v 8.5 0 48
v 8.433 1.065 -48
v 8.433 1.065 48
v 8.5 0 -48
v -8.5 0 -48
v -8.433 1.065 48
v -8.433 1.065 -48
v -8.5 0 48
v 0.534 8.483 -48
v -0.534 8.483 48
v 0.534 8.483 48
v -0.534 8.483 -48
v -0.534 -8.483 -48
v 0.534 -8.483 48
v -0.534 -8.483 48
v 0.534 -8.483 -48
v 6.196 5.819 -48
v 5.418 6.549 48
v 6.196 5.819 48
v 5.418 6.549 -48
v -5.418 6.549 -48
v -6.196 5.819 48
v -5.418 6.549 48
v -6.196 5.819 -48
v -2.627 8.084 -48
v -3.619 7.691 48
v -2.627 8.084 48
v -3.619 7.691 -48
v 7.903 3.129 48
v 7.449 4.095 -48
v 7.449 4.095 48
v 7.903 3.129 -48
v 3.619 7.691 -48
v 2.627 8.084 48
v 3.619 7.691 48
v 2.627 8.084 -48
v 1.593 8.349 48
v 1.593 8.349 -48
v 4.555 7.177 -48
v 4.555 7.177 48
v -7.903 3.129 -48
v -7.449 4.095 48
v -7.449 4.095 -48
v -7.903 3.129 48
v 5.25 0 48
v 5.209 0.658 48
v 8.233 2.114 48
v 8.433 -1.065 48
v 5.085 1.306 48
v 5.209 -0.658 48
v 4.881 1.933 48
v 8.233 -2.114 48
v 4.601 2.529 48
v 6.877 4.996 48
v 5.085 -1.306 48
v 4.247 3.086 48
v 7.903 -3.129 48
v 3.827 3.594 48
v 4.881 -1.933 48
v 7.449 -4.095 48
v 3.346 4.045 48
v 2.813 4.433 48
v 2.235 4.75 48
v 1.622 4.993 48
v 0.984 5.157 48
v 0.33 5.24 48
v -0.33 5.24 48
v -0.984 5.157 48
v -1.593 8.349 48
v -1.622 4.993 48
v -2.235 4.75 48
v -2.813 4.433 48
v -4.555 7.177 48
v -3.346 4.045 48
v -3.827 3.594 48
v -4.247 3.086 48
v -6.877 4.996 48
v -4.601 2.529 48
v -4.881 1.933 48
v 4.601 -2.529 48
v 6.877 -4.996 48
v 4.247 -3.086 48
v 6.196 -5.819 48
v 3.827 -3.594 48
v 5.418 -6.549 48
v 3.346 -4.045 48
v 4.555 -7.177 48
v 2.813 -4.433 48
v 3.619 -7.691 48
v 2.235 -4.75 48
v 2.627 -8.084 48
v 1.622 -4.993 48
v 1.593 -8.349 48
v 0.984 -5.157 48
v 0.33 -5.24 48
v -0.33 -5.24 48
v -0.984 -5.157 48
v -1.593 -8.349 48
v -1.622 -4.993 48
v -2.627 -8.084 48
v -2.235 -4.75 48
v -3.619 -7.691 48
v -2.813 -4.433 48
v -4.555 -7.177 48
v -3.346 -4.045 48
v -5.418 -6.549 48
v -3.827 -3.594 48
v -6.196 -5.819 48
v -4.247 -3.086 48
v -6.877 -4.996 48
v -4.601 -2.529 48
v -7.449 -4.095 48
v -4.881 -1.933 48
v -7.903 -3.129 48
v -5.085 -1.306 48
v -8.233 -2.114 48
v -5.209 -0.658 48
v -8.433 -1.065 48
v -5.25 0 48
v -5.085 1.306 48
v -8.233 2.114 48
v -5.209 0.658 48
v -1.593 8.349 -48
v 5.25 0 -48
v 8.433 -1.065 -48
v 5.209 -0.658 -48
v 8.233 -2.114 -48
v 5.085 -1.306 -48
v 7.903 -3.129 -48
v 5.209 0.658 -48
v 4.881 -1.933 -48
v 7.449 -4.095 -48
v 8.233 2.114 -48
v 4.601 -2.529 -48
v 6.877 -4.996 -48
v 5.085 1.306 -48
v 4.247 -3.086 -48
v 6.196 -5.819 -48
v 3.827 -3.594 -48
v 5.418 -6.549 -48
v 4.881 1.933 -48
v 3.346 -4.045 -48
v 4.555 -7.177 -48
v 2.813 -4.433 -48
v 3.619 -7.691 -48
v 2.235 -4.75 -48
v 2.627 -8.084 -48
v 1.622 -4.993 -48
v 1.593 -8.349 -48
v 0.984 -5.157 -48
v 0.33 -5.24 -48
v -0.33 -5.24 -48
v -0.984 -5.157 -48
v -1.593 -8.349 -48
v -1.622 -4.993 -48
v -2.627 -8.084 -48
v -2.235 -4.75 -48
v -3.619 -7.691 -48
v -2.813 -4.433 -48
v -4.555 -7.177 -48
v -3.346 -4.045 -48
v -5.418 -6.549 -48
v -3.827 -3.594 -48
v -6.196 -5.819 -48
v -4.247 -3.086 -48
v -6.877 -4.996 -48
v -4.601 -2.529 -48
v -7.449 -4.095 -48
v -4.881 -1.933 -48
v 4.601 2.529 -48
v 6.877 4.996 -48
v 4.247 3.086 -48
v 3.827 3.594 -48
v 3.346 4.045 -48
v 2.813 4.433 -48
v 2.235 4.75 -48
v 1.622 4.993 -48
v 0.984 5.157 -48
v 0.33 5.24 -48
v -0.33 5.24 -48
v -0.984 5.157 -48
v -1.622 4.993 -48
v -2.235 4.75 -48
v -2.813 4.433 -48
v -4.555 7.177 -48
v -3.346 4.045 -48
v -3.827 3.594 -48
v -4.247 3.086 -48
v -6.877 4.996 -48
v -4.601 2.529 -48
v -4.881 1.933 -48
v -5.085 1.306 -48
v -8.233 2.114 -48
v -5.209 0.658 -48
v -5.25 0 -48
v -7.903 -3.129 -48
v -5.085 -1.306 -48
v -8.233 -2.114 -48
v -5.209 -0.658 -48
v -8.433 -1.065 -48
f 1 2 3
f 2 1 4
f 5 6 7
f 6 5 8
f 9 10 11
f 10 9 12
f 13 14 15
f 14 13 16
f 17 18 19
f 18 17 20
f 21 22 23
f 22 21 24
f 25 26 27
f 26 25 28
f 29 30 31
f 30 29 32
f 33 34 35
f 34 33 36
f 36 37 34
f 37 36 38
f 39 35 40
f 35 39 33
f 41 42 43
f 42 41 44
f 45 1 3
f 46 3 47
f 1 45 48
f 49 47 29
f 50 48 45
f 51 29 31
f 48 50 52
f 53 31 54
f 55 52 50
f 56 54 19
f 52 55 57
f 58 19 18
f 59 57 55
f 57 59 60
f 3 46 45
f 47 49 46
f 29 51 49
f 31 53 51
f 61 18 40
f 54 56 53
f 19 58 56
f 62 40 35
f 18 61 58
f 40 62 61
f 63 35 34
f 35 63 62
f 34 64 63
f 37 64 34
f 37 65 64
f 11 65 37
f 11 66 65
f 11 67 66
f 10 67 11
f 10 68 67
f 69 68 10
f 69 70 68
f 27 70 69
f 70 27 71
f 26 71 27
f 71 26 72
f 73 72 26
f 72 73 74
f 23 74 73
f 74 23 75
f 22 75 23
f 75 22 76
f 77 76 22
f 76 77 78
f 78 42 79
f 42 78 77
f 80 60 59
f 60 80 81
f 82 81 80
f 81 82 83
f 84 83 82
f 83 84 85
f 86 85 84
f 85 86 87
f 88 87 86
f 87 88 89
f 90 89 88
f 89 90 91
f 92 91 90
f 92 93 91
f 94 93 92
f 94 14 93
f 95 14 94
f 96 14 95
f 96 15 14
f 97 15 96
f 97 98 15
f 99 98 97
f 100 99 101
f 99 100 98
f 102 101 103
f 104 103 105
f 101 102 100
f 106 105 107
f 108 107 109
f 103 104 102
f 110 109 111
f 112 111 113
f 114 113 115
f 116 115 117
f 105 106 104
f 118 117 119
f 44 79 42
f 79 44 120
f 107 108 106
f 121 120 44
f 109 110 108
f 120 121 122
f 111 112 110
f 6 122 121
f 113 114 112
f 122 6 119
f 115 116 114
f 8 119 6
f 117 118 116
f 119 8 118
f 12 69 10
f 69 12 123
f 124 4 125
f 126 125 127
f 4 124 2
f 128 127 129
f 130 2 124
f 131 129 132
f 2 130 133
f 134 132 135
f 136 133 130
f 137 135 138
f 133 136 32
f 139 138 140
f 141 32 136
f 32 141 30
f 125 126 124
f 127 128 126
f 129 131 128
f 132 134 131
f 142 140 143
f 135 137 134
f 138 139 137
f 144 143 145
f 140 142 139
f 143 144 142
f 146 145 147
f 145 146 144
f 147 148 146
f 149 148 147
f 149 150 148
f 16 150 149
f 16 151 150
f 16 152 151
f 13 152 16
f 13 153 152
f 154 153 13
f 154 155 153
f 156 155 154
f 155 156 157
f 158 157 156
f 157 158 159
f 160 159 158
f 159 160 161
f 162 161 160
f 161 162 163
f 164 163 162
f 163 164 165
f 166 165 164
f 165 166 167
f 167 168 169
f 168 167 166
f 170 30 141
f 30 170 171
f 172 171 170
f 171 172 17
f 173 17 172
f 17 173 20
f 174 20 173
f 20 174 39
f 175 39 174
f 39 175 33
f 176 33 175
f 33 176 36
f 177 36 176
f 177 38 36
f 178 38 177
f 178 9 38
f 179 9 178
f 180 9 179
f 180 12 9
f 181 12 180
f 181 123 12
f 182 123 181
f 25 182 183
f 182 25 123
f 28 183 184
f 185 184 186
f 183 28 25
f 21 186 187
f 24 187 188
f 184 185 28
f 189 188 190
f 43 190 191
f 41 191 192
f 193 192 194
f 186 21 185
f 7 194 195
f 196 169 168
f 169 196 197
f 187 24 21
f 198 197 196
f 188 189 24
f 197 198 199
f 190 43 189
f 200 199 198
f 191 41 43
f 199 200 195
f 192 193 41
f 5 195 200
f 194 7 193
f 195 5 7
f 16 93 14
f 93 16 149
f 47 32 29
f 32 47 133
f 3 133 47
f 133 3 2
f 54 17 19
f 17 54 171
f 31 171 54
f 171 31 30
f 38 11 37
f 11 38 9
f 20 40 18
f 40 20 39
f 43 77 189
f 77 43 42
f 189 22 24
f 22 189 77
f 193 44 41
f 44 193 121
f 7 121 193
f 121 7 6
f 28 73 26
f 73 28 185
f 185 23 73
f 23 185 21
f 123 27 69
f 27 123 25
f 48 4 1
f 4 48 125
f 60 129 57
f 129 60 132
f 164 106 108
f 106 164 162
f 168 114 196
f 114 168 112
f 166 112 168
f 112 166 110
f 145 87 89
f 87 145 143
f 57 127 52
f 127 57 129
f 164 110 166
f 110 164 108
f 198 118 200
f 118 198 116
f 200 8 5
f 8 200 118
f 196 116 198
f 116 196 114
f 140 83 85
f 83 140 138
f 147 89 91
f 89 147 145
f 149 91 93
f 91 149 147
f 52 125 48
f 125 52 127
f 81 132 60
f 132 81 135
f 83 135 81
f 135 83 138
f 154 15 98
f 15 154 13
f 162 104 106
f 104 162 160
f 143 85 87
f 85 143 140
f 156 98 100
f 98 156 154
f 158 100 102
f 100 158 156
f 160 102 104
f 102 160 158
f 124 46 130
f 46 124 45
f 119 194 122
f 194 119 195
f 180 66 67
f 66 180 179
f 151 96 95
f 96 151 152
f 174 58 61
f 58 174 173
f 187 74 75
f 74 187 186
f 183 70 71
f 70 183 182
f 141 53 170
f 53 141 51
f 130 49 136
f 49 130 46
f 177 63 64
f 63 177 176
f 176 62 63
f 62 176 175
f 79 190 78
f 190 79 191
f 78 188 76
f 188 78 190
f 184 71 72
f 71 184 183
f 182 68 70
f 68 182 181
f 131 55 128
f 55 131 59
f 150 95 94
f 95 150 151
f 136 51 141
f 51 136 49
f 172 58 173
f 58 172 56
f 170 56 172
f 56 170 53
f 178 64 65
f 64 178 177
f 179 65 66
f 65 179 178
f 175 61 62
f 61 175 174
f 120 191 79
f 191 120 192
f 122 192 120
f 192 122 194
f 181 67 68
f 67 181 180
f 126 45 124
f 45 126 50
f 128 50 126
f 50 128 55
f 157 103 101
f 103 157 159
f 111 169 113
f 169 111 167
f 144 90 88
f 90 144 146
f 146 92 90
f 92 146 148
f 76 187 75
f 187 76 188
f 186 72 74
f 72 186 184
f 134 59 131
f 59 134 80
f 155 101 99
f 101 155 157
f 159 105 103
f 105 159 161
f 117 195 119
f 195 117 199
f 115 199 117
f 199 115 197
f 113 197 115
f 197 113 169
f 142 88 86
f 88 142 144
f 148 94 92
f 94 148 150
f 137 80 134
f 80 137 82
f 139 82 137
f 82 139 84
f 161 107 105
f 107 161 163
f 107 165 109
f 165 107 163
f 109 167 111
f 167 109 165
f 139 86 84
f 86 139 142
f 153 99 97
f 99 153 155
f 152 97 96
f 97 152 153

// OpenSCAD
$fn = 50;


difference() {
	union() {
		translate(v = [0, 0, -48.0000000000]) {
			cylinder(h = 96, r = 8.5000000000);
		}
	}
	union() {
		translate(v = [0, 0, -100.0000000000]) {
			cylinder(h = 200, r = 5.2500000000);
		}
	}
}
